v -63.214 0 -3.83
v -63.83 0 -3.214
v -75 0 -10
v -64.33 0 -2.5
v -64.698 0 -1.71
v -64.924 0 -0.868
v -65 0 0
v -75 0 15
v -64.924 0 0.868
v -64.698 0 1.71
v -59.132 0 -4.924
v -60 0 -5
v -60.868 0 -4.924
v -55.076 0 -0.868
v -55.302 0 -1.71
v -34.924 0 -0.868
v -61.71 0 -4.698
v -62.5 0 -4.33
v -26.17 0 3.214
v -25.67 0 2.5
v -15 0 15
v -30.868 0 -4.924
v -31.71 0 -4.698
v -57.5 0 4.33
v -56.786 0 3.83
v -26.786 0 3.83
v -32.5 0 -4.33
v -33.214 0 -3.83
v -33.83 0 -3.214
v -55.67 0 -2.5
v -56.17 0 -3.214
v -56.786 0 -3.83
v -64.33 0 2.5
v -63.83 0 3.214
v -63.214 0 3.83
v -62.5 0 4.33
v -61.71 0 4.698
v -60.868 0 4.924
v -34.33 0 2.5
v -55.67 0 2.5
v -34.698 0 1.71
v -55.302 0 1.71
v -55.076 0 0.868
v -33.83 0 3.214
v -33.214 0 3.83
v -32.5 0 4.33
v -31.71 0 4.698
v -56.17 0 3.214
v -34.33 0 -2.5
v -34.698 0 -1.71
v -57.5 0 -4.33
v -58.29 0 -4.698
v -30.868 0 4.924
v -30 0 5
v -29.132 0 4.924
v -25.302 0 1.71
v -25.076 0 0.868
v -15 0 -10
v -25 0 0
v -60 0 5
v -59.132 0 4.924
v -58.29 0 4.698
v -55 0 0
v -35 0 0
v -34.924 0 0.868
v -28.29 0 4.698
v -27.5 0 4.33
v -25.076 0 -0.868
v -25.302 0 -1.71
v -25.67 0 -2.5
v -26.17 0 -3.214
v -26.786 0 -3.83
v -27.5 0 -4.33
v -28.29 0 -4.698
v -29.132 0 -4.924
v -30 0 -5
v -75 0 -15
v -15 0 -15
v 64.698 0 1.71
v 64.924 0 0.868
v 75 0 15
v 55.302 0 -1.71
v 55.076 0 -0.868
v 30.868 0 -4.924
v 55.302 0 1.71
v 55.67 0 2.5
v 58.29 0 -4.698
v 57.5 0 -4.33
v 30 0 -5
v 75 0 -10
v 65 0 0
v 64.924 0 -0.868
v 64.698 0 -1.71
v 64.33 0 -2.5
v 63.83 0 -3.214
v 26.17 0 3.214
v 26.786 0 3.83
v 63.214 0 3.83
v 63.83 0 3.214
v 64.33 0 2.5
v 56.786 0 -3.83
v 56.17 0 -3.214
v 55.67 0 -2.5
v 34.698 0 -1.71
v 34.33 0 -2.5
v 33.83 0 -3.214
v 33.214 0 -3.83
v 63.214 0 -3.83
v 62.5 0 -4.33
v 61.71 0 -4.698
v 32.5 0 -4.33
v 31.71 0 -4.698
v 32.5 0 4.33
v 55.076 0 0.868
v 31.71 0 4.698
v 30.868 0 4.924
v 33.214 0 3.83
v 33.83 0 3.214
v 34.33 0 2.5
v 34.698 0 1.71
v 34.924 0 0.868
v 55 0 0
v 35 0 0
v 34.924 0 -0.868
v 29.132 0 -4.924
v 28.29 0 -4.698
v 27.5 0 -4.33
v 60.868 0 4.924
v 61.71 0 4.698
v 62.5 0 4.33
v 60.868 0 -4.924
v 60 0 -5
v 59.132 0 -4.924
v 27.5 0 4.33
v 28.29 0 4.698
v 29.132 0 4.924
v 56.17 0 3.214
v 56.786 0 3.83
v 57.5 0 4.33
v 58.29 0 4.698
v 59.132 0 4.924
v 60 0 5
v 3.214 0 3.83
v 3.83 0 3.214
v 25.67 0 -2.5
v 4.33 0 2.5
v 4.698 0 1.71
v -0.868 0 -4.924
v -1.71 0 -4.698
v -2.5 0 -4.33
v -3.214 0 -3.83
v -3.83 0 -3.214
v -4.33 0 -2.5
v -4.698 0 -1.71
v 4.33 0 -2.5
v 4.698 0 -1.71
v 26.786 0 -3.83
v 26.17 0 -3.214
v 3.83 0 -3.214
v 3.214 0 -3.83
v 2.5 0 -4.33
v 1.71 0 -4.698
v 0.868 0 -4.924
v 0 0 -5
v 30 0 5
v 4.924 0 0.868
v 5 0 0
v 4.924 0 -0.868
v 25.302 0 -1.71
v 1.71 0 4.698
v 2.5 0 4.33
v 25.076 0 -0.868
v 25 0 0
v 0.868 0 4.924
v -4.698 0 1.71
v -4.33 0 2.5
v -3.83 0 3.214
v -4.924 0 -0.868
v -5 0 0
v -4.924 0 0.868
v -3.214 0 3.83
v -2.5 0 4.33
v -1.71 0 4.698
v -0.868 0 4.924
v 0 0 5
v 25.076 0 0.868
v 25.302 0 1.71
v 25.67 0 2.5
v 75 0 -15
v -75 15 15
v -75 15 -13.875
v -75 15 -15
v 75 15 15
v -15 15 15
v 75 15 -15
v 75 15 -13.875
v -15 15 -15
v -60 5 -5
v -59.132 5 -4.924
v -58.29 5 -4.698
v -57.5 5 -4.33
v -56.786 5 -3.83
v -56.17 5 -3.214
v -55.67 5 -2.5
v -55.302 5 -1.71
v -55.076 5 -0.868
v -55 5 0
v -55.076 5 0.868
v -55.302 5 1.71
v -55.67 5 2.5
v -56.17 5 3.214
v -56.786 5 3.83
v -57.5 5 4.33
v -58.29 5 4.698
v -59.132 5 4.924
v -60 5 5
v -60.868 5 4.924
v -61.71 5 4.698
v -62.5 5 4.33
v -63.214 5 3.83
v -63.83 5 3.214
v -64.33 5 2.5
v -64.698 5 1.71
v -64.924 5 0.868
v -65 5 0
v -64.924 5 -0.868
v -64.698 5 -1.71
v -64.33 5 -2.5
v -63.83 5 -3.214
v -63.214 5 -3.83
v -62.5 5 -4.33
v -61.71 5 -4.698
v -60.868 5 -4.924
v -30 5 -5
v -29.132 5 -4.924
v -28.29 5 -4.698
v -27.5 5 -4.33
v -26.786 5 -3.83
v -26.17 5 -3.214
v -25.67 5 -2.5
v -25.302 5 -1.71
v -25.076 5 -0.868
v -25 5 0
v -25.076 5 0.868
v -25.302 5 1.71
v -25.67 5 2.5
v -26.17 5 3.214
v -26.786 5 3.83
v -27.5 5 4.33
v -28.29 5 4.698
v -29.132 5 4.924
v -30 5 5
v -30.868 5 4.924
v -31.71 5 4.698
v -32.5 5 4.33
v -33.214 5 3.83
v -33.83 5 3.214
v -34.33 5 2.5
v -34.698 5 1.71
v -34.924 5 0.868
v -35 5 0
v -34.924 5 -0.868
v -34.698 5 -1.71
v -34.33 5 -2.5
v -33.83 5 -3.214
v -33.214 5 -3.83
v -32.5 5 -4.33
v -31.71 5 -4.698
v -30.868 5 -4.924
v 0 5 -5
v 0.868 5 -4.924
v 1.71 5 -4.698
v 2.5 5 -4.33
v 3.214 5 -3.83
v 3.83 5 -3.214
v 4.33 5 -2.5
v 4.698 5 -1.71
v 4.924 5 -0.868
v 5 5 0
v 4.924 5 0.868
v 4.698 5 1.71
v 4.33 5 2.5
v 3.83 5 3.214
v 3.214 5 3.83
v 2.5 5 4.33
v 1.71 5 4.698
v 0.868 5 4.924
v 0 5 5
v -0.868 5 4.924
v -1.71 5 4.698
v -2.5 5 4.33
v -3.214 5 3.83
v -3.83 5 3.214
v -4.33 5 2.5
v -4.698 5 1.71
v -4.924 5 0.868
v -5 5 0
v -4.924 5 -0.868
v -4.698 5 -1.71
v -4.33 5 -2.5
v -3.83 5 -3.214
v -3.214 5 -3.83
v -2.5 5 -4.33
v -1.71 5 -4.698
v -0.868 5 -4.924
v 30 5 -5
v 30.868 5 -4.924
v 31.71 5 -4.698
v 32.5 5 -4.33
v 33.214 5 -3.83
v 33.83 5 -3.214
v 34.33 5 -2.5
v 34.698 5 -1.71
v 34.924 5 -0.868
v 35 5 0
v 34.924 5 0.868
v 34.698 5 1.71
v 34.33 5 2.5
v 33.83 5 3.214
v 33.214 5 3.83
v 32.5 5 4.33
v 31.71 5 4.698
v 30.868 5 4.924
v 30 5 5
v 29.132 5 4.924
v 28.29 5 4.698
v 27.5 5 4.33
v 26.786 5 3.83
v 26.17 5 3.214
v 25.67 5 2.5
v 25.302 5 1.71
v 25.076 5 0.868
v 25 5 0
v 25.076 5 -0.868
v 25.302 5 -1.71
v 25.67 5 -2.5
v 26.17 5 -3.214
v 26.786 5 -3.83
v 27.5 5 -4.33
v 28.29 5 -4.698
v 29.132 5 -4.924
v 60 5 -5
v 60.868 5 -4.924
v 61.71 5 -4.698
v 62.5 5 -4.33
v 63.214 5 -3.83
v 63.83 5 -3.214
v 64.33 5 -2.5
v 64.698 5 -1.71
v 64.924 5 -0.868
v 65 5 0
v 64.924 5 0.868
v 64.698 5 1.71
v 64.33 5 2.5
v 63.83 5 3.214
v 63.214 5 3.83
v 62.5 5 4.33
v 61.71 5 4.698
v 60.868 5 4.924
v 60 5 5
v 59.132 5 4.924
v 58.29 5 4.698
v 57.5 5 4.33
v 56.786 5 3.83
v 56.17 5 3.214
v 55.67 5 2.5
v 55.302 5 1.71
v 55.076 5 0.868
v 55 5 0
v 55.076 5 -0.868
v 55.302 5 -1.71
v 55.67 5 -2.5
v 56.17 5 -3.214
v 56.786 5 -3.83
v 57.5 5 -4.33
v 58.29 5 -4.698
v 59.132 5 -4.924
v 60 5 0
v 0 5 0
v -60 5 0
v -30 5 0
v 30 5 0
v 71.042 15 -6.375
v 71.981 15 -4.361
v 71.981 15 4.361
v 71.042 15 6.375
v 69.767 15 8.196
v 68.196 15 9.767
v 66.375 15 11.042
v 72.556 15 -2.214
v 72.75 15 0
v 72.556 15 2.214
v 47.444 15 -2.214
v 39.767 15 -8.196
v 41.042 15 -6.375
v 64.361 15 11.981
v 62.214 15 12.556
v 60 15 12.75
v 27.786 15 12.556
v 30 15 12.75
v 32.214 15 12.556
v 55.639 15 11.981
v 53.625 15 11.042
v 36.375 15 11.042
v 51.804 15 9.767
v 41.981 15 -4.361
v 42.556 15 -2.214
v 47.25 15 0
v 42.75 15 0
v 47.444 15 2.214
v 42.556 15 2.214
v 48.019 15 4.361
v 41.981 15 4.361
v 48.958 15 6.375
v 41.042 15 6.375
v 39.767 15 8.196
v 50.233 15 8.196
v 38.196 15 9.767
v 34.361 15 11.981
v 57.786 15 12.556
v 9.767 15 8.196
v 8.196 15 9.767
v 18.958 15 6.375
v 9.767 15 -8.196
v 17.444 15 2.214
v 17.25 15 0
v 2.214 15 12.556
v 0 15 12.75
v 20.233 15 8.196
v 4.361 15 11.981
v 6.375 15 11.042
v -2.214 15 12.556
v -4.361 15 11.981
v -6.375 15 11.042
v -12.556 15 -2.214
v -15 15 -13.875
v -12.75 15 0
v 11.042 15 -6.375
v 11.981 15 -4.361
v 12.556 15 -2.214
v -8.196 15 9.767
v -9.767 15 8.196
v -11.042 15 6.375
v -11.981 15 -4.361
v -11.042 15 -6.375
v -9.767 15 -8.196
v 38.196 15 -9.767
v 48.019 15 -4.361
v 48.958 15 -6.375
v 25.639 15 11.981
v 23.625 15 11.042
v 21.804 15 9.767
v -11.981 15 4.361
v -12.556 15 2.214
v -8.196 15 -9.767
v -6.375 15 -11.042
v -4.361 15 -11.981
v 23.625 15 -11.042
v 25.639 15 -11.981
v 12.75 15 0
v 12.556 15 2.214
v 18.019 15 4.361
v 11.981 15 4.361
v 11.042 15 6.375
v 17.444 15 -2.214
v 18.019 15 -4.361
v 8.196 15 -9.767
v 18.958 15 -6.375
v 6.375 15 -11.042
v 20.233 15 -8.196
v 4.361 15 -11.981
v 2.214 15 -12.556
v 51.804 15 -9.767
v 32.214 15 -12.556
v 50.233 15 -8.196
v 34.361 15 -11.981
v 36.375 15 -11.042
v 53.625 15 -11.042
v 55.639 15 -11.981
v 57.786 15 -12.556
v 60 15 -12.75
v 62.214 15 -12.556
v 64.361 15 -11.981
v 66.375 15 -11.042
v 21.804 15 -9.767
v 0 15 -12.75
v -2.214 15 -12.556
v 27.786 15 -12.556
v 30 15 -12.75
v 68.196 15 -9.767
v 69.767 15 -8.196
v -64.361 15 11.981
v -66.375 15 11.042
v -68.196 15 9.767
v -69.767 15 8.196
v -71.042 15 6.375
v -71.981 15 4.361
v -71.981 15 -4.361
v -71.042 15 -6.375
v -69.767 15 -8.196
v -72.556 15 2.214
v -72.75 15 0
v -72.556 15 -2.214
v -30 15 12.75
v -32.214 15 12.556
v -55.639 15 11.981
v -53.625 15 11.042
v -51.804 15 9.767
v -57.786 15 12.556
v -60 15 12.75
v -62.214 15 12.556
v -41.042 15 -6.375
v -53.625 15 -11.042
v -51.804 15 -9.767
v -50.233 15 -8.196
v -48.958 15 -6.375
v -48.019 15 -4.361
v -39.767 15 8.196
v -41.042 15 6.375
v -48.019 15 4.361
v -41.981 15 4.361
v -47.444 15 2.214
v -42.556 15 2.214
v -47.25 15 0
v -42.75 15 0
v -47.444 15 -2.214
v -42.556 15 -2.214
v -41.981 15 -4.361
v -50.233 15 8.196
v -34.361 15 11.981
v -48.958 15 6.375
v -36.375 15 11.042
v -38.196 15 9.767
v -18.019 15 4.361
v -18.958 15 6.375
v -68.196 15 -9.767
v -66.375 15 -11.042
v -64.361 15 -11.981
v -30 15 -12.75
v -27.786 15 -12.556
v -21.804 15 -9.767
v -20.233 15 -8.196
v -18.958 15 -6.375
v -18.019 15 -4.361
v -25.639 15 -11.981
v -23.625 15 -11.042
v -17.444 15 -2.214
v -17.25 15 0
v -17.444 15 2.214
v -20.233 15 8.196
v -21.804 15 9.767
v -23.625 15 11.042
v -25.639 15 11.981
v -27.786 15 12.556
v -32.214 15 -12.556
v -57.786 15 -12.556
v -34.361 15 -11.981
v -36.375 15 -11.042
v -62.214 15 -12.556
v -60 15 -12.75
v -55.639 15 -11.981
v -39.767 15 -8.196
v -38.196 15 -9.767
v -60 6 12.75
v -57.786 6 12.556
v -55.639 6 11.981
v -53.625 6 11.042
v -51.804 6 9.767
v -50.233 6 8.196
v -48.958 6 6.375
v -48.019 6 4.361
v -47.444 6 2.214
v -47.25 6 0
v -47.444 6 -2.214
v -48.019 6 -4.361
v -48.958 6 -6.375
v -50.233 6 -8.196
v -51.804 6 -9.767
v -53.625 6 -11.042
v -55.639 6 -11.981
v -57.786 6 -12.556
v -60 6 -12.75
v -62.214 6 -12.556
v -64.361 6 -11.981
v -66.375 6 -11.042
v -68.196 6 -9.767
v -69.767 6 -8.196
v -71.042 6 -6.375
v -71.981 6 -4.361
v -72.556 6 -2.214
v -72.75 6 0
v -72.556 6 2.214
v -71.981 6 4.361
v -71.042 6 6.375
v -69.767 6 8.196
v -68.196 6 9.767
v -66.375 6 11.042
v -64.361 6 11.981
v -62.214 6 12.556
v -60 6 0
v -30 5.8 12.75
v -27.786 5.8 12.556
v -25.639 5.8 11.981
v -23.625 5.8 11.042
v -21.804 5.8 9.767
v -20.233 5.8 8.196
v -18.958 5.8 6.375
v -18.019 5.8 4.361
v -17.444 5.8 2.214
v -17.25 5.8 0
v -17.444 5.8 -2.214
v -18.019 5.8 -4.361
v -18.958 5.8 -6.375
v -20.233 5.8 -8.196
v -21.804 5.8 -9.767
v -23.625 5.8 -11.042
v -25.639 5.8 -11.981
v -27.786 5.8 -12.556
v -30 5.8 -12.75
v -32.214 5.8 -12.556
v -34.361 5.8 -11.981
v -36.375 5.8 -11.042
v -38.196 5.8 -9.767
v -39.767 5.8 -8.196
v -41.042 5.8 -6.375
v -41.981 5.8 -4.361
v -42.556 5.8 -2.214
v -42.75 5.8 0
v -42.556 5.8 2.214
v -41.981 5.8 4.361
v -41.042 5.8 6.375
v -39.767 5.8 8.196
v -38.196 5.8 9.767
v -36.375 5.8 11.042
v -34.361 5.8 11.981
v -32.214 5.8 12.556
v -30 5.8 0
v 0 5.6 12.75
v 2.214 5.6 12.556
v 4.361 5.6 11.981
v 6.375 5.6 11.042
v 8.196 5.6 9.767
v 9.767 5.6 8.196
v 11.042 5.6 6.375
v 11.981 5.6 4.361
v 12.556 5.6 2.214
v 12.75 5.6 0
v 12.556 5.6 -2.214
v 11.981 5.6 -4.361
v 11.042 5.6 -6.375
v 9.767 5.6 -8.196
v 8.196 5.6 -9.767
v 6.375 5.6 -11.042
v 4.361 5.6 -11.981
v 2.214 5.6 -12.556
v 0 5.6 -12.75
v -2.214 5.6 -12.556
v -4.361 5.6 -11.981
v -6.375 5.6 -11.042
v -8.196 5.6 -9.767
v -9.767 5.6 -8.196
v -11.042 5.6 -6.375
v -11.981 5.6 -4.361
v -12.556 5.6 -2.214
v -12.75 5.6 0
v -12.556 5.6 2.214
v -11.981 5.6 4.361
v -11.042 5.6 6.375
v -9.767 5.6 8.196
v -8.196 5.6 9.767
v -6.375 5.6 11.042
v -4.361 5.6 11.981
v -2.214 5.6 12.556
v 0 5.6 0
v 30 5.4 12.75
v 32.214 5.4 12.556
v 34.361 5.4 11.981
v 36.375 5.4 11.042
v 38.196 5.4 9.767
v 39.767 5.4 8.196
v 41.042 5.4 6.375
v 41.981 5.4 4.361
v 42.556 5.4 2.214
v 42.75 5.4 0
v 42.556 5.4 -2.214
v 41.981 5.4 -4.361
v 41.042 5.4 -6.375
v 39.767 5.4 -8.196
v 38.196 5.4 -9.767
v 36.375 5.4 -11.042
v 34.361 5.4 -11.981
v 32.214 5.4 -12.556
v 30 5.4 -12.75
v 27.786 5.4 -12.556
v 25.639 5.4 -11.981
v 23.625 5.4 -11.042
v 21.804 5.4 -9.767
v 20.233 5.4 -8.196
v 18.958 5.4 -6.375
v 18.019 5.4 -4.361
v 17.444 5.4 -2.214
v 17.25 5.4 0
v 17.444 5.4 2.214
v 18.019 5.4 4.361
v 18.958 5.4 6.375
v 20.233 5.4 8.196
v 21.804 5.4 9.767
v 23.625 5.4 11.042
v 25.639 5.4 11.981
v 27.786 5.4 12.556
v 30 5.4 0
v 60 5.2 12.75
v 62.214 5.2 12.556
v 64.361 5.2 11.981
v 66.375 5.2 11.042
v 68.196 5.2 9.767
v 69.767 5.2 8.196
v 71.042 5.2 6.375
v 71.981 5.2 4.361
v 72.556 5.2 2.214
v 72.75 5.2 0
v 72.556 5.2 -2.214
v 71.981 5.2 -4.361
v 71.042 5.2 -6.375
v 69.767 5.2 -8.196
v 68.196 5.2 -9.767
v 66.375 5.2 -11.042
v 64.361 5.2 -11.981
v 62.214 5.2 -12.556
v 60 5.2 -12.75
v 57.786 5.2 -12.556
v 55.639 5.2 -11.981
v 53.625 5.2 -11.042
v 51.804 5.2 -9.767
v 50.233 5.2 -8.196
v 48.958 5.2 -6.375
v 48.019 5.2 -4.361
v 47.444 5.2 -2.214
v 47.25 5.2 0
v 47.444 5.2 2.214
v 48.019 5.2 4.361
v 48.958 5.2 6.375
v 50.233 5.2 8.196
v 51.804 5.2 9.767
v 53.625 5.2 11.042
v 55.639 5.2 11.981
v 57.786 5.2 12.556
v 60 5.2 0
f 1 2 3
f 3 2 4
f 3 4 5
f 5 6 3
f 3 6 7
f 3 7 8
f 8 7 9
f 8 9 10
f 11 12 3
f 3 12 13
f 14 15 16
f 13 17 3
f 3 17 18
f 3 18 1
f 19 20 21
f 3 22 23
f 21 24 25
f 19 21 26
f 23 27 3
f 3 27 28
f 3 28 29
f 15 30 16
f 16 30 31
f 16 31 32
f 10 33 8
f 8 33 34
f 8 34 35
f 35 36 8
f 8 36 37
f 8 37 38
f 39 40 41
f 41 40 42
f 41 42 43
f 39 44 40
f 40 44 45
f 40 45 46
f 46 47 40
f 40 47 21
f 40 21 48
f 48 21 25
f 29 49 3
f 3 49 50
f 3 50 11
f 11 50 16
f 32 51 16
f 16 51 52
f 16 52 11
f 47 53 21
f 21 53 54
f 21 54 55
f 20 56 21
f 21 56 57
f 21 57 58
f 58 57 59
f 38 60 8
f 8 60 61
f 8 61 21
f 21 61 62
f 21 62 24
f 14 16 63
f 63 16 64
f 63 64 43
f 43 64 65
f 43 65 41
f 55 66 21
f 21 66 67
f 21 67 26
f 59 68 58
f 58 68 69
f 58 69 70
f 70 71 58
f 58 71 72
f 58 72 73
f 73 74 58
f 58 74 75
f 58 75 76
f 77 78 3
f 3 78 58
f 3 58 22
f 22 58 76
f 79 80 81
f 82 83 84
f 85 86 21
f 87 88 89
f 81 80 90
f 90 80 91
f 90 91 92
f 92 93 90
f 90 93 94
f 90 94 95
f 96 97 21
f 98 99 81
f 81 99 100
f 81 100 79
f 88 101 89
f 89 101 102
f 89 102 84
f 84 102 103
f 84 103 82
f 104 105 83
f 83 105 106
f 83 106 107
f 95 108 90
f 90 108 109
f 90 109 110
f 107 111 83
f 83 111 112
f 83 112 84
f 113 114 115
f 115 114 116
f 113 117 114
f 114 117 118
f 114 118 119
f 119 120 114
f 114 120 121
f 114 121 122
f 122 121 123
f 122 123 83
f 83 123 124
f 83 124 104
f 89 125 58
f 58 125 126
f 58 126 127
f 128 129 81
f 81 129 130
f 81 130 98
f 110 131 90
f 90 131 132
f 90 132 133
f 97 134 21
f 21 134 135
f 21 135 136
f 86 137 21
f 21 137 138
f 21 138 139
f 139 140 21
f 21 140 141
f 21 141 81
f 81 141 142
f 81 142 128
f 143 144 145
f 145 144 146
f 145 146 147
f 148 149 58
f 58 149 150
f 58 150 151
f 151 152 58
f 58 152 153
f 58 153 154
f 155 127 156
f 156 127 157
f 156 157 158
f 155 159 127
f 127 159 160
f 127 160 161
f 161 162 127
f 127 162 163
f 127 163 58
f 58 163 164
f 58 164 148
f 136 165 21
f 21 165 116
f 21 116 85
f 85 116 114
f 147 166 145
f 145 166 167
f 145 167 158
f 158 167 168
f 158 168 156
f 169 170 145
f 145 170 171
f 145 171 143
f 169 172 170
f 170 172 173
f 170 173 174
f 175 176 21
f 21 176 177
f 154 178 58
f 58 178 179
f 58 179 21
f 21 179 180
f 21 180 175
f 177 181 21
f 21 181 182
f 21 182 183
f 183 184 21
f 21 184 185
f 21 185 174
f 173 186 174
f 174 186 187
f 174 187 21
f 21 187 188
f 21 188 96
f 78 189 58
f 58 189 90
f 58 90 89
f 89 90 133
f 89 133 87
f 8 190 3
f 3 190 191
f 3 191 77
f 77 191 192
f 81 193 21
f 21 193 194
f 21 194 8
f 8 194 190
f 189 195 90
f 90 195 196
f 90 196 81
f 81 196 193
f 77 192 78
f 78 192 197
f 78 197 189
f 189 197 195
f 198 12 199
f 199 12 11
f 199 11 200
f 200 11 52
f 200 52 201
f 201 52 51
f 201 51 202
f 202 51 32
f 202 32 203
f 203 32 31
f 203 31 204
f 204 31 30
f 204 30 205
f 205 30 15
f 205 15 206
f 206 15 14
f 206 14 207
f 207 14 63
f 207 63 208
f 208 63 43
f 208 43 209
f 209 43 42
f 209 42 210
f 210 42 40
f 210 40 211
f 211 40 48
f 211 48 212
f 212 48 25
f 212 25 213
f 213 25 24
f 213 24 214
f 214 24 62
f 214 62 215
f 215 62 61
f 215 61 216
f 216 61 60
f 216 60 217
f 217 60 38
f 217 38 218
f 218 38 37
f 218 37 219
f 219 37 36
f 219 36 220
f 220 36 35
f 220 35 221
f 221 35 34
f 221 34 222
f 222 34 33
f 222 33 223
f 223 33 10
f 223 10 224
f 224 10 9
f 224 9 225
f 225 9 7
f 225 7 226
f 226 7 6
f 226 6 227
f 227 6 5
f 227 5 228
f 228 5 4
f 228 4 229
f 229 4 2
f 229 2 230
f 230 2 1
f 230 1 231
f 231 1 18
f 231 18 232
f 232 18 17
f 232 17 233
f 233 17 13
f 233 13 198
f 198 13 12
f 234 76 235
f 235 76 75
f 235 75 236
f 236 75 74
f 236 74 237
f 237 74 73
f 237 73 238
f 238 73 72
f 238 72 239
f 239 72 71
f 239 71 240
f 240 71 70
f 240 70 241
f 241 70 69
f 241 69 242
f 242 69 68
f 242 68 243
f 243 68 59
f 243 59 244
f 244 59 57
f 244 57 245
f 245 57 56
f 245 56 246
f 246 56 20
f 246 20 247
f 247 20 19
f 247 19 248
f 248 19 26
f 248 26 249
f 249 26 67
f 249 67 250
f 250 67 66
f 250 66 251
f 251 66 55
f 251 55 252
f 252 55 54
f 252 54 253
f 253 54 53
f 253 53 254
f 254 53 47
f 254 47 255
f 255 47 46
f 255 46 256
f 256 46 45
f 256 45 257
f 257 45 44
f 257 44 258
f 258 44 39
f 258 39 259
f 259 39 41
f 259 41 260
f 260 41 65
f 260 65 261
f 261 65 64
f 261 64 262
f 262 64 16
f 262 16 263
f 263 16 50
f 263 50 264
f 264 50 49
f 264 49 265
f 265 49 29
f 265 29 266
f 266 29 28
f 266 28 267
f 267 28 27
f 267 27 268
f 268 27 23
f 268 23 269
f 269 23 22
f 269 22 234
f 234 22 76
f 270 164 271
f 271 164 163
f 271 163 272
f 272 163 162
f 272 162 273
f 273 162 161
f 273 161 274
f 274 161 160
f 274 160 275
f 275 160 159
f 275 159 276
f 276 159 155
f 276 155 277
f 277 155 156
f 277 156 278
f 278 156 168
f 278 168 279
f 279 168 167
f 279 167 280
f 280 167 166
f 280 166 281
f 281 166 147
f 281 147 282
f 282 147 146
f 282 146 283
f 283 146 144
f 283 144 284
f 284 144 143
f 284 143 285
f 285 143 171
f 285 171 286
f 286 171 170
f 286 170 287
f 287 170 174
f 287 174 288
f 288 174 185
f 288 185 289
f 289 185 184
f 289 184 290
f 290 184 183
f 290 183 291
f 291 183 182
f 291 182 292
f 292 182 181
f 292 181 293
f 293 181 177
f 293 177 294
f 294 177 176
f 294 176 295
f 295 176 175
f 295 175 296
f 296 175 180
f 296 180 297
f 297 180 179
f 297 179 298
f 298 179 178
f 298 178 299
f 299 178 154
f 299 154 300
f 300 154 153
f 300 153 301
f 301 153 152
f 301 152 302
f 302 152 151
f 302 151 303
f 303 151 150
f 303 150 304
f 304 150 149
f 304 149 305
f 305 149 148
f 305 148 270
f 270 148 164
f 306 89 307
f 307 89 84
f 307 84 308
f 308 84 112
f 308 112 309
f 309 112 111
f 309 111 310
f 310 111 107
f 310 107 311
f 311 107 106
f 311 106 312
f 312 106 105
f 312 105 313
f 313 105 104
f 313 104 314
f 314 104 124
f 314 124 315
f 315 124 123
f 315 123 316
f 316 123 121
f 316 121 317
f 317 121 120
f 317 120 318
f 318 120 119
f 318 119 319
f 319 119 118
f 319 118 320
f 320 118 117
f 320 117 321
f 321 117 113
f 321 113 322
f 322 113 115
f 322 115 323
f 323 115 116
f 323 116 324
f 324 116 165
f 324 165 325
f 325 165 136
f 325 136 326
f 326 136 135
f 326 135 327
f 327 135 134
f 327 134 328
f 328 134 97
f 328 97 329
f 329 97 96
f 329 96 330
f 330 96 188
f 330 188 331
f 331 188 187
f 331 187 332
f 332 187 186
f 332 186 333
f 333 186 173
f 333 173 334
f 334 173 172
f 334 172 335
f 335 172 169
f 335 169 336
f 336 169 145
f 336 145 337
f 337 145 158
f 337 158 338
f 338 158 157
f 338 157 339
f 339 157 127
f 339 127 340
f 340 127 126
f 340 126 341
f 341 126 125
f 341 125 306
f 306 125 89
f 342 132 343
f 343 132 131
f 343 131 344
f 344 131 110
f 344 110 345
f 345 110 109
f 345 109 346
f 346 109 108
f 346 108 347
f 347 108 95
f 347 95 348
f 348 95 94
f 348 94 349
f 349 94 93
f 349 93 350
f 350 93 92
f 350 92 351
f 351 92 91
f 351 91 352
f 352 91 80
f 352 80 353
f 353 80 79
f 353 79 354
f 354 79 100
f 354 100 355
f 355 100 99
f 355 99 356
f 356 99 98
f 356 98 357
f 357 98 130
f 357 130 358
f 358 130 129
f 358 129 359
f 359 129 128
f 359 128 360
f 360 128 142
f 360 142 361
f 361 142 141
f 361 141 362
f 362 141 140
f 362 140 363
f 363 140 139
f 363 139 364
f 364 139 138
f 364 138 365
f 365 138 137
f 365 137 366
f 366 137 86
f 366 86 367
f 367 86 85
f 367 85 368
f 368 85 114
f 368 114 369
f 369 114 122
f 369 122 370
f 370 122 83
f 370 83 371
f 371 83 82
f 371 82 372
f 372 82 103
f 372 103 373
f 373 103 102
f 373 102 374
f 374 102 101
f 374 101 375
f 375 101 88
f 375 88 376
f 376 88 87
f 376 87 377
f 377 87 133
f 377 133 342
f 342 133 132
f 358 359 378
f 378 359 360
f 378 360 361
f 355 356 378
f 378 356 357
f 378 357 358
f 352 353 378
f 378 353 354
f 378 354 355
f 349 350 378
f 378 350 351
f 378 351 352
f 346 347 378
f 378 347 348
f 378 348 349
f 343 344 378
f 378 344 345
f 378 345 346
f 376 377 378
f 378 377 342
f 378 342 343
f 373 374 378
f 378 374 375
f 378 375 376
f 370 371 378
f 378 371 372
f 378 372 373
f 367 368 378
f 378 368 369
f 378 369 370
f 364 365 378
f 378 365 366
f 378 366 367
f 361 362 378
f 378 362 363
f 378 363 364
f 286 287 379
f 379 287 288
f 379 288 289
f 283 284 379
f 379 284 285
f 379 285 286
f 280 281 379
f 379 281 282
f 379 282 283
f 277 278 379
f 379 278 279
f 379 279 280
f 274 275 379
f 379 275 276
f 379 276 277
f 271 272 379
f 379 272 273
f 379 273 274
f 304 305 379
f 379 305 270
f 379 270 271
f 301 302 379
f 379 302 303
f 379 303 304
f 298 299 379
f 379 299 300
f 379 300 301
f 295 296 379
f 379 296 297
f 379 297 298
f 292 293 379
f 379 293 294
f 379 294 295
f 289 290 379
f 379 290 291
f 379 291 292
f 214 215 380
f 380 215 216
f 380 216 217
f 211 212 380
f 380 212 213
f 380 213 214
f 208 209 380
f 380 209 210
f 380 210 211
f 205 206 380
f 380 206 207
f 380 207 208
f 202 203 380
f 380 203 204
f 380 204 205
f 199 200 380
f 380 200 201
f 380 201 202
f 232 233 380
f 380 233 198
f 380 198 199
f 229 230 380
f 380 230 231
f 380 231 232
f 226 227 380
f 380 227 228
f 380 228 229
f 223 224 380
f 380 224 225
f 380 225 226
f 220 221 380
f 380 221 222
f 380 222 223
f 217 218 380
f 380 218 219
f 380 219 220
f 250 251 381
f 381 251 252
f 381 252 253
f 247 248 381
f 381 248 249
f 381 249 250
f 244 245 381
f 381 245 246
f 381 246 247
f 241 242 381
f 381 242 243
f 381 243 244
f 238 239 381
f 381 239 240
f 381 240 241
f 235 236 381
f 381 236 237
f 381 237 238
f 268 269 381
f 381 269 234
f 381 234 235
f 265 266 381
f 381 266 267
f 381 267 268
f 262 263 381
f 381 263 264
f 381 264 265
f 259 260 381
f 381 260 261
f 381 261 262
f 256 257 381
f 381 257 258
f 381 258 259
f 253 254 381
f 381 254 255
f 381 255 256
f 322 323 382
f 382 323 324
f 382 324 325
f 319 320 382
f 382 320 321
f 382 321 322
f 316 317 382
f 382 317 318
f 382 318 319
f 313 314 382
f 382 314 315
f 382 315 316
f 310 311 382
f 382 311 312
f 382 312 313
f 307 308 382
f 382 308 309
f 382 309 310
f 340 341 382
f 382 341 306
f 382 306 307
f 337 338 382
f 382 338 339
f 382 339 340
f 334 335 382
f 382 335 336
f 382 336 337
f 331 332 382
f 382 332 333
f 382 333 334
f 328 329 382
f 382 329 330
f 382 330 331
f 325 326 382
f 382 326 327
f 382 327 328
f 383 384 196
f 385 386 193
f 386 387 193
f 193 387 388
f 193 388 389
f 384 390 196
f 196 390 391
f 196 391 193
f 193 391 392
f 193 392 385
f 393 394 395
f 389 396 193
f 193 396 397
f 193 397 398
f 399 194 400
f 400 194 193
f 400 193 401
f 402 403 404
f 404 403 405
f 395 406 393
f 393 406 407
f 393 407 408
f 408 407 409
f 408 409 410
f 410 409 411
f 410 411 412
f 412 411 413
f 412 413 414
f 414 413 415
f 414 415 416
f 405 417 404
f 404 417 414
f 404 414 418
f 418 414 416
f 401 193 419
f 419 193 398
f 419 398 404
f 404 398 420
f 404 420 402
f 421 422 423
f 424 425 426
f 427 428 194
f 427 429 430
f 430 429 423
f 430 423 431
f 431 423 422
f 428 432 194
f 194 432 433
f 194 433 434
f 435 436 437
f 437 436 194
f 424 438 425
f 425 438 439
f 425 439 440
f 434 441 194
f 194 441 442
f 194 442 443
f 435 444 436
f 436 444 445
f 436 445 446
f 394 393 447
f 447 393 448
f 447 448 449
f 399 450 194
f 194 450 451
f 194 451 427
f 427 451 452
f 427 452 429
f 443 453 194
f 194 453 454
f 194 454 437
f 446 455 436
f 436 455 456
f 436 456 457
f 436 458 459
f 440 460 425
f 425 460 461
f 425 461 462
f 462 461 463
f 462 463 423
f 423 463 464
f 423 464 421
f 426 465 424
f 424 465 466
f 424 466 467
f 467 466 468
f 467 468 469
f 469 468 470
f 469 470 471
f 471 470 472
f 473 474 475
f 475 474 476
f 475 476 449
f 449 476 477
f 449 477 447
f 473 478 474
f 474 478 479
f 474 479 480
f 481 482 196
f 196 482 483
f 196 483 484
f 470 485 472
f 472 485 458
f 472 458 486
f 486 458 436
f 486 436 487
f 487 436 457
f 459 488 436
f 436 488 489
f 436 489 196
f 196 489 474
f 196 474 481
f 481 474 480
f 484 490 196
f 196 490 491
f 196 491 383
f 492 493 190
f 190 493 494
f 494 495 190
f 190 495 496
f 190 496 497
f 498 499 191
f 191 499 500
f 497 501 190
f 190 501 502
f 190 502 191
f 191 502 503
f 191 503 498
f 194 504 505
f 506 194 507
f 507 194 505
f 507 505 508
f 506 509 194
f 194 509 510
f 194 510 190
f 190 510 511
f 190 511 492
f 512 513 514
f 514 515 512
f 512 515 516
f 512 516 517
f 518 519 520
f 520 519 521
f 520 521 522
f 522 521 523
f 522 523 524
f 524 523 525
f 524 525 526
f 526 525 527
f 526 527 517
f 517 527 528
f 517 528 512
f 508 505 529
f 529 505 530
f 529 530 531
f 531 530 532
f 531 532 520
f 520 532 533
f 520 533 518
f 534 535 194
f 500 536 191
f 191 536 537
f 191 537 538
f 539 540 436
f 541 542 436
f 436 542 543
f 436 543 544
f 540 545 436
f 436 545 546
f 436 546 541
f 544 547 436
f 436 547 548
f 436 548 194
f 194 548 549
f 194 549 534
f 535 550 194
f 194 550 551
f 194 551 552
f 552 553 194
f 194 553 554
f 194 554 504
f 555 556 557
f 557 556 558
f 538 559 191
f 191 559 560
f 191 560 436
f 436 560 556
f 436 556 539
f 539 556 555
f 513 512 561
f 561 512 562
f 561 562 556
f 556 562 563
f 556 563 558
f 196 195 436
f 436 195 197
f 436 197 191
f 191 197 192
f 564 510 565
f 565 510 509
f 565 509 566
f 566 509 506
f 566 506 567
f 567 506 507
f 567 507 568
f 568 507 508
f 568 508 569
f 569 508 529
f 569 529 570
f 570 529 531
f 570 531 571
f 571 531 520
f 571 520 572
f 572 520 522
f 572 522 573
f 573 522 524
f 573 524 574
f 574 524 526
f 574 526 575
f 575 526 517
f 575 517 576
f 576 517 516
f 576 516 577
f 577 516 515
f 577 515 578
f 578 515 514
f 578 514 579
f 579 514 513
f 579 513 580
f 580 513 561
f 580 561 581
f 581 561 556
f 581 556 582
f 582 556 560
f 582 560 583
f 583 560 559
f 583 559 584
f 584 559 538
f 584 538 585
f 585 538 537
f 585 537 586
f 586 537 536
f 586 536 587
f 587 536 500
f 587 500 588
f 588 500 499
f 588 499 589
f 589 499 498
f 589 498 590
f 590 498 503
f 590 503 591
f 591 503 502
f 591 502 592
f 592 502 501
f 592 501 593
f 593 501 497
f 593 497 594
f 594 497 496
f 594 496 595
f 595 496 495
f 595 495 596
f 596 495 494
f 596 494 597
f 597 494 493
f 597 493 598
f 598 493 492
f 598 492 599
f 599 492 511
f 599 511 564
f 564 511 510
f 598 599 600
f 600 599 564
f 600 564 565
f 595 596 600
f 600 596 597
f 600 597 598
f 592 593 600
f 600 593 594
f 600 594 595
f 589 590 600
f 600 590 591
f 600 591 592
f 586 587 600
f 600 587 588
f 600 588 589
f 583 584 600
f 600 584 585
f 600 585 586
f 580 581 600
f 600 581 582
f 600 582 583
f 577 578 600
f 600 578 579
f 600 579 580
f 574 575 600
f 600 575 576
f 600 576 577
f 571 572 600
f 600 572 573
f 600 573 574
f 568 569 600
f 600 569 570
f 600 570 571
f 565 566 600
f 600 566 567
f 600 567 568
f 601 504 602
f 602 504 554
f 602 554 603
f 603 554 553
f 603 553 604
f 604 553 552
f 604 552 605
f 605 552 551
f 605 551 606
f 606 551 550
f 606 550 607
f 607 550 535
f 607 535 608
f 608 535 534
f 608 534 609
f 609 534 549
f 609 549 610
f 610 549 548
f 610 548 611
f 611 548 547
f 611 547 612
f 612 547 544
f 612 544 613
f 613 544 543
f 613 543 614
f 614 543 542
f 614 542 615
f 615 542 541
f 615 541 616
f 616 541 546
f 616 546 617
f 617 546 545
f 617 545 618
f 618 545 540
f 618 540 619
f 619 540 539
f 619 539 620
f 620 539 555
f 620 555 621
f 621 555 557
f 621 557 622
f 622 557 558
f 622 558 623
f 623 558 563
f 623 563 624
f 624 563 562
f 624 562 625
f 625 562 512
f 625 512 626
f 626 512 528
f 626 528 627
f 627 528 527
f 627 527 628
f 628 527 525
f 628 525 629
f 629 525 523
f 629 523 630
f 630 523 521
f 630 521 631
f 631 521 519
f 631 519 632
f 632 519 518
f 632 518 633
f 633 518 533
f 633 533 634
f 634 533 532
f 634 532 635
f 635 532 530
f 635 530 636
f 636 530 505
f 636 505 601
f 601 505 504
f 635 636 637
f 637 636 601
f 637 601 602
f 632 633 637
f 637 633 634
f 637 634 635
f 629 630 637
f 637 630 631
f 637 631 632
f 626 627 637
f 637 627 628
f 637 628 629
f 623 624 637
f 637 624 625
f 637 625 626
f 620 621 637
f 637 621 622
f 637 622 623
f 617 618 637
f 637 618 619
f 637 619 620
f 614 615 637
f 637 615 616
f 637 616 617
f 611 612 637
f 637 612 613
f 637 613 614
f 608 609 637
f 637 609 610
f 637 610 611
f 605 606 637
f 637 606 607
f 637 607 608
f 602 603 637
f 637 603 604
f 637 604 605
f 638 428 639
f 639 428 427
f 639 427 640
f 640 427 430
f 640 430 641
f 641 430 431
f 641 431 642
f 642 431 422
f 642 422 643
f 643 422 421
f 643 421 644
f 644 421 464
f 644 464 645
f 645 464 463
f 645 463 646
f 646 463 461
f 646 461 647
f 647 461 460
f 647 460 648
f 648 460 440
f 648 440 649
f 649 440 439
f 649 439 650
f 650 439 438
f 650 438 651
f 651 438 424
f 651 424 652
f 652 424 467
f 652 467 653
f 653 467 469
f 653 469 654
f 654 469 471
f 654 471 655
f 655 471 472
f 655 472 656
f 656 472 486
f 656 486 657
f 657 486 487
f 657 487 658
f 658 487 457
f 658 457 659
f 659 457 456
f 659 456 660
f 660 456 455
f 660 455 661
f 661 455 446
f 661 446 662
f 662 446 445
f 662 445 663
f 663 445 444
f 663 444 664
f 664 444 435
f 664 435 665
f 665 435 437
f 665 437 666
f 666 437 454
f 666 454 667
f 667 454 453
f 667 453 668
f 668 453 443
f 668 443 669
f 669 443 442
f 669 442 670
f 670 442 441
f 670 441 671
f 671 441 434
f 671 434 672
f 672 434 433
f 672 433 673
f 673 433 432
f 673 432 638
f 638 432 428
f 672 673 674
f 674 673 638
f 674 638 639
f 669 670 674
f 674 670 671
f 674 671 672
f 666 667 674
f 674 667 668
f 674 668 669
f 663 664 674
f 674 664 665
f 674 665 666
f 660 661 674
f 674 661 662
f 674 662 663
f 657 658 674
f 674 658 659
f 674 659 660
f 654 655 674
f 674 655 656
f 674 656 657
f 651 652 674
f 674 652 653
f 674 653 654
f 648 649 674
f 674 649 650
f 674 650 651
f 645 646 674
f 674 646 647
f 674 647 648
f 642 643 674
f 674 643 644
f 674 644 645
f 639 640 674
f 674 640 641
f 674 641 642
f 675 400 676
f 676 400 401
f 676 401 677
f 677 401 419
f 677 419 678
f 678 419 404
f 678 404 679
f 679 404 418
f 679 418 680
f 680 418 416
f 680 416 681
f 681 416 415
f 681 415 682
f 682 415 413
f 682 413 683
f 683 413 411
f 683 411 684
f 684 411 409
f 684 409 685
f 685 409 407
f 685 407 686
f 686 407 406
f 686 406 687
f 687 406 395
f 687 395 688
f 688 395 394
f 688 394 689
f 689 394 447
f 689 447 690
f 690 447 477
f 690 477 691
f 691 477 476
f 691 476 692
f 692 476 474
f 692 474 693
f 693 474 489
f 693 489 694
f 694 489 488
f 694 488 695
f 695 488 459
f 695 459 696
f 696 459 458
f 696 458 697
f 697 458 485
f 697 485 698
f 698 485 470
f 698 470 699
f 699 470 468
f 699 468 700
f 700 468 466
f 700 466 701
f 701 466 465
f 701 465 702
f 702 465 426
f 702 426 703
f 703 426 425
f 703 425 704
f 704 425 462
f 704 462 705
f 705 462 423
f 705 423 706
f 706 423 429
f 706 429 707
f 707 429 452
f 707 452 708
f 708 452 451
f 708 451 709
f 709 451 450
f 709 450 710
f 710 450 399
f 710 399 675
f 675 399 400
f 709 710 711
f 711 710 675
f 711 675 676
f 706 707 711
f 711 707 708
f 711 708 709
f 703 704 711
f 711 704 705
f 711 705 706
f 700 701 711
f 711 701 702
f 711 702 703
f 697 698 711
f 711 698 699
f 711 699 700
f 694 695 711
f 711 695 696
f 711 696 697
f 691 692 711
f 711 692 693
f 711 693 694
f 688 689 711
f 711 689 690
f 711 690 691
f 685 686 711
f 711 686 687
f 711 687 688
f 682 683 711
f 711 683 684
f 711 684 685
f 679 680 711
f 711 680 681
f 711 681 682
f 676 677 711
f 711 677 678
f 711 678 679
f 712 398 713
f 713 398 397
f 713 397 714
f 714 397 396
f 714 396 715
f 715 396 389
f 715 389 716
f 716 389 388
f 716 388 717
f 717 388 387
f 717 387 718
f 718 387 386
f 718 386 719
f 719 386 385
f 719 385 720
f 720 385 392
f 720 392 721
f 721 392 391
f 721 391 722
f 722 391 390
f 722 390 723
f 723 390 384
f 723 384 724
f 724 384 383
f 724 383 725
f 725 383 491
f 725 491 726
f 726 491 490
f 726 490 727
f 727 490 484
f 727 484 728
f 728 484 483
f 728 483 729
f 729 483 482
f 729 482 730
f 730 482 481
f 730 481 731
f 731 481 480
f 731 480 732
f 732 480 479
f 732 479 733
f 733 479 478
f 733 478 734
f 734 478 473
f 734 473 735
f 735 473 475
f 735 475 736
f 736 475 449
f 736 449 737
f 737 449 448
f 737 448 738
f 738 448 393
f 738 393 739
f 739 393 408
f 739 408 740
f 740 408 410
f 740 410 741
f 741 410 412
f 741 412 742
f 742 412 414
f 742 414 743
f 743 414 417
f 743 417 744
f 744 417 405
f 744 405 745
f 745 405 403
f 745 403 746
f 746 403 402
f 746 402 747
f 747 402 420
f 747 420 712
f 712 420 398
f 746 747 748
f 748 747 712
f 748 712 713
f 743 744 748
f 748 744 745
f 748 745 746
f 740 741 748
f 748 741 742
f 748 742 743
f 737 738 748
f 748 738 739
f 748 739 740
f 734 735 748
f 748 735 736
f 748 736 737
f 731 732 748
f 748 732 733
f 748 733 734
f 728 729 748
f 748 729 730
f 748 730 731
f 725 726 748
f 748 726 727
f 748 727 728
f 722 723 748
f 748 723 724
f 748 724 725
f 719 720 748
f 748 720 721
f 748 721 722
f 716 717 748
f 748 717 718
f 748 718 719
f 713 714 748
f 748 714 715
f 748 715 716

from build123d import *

# Parameters (mm, degrees)
SKETCH1_W           = 150
SKETCH1_H           = 30
SKETCH1_R           = 5
BOSS_EXTRUDE1_DEPTH = 5
SKETCH2_W           = 150
SKETCH2_H           = 30
BOSS_EXTRUDE2_DEPTH = 10
SKETCH3_R           = 12.75
CUT_EXTRUDE1_DEPTH  = 9
SKETCH3_3_R         = 12.75
CUT_EXTRUDE2_DEPTH  = 9.2
SKETCH3_4_R         = 12.75
CUT_EXTRUDE3_DEPTH  = 9.4
SKETCH3_5_R         = 12.75
CUT_EXTRUDE4_DEPTH  = 9.6
SKETCH3_6_R         = 12.75
CUT_EXTRUDE5_DEPTH  = 9.8


with BuildPart() as part:
    # Sketch1 → Boss-Extrude1 (new body)
    with BuildSketch(Plane(origin=(0, 0, 0), x_dir=(1, 0, 0), z_dir=(0, 1, 0))):
        Rectangle(SKETCH1_W, SKETCH1_H)
        with Locations(Location((-60, 0, 0), (0, 0, 270))):
            Circle(SKETCH1_R, mode=Mode.SUBTRACT)
        with Locations(Location((-30, 0, 0), (0, 0, 270))):
            Circle(SKETCH1_R, mode=Mode.SUBTRACT)
        with Locations(Location((0, 0, 0), (0, 0, 270))):
            Circle(SKETCH1_R, mode=Mode.SUBTRACT)
        with Locations(Location((30, 0, 0), (0, 0, 270))):
            Circle(SKETCH1_R, mode=Mode.SUBTRACT)
        with Locations(Location((60, 0, 0), (0, 0, 270))):
            Circle(SKETCH1_R, mode=Mode.SUBTRACT)
    extrude(amount=BOSS_EXTRUDE1_DEPTH)

    # Sketch2 → Boss-Extrude2 (add)
    with BuildSketch(Plane(origin=(0, 5, 0), x_dir=(1, 0, 0), z_dir=(0, 1, 0))):
        Rectangle(SKETCH2_W, SKETCH2_H)
    extrude(amount=BOSS_EXTRUDE2_DEPTH)

    # Sketch3 → Cut-Extrude1 (cut)
    with BuildSketch(Plane(origin=(0, 15, 0), x_dir=(1, 0, 0), z_dir=(0, 1, 0))):
        with Locations(Location((-60, 0, 0), (0, 0, 270))):
            Circle(SKETCH3_R)
    extrude(amount=-CUT_EXTRUDE1_DEPTH, mode=Mode.SUBTRACT)

    # Sketch3<3> → Cut-Extrude2 (cut)
    with BuildSketch(Plane(origin=(0, 15, 0), x_dir=(1, 0, 0), z_dir=(0, 1, 0))):
        with Locations(Location((-30, 0, 0), (0, 0, 270))):
            Circle(SKETCH3_3_R)
    extrude(amount=-CUT_EXTRUDE2_DEPTH, mode=Mode.SUBTRACT)

    # Sketch3<4> → Cut-Extrude3 (cut)
    with BuildSketch(Plane(origin=(0, 15, 0), x_dir=(1, 0, 0), z_dir=(0, 1, 0))):
        with Locations(Location((0, 0, 0), (0, 0, 270))):
            Circle(SKETCH3_4_R)
    extrude(amount=-CUT_EXTRUDE3_DEPTH, mode=Mode.SUBTRACT)

    # Sketch3<5> → Cut-Extrude4 (cut)
    with BuildSketch(Plane(origin=(0, 15, 0), x_dir=(1, 0, 0), z_dir=(0, 1, 0))):
        with Locations(Location((30, 0, 0), (0, 0, 270))):
            Circle(SKETCH3_5_R)
    extrude(amount=-CUT_EXTRUDE4_DEPTH, mode=Mode.SUBTRACT)

    # Sketch3<6> → Cut-Extrude5 (cut)
    with BuildSketch(Plane(origin=(0, 15, 0), x_dir=(1, 0, 0), z_dir=(0, 1, 0))):
        with Locations(Location((60, 0, 0), (0, 0, 270))):
            Circle(SKETCH3_6_R)
    extrude(amount=-CUT_EXTRUDE5_DEPTH, mode=Mode.SUBTRACT)


solid = part.part
